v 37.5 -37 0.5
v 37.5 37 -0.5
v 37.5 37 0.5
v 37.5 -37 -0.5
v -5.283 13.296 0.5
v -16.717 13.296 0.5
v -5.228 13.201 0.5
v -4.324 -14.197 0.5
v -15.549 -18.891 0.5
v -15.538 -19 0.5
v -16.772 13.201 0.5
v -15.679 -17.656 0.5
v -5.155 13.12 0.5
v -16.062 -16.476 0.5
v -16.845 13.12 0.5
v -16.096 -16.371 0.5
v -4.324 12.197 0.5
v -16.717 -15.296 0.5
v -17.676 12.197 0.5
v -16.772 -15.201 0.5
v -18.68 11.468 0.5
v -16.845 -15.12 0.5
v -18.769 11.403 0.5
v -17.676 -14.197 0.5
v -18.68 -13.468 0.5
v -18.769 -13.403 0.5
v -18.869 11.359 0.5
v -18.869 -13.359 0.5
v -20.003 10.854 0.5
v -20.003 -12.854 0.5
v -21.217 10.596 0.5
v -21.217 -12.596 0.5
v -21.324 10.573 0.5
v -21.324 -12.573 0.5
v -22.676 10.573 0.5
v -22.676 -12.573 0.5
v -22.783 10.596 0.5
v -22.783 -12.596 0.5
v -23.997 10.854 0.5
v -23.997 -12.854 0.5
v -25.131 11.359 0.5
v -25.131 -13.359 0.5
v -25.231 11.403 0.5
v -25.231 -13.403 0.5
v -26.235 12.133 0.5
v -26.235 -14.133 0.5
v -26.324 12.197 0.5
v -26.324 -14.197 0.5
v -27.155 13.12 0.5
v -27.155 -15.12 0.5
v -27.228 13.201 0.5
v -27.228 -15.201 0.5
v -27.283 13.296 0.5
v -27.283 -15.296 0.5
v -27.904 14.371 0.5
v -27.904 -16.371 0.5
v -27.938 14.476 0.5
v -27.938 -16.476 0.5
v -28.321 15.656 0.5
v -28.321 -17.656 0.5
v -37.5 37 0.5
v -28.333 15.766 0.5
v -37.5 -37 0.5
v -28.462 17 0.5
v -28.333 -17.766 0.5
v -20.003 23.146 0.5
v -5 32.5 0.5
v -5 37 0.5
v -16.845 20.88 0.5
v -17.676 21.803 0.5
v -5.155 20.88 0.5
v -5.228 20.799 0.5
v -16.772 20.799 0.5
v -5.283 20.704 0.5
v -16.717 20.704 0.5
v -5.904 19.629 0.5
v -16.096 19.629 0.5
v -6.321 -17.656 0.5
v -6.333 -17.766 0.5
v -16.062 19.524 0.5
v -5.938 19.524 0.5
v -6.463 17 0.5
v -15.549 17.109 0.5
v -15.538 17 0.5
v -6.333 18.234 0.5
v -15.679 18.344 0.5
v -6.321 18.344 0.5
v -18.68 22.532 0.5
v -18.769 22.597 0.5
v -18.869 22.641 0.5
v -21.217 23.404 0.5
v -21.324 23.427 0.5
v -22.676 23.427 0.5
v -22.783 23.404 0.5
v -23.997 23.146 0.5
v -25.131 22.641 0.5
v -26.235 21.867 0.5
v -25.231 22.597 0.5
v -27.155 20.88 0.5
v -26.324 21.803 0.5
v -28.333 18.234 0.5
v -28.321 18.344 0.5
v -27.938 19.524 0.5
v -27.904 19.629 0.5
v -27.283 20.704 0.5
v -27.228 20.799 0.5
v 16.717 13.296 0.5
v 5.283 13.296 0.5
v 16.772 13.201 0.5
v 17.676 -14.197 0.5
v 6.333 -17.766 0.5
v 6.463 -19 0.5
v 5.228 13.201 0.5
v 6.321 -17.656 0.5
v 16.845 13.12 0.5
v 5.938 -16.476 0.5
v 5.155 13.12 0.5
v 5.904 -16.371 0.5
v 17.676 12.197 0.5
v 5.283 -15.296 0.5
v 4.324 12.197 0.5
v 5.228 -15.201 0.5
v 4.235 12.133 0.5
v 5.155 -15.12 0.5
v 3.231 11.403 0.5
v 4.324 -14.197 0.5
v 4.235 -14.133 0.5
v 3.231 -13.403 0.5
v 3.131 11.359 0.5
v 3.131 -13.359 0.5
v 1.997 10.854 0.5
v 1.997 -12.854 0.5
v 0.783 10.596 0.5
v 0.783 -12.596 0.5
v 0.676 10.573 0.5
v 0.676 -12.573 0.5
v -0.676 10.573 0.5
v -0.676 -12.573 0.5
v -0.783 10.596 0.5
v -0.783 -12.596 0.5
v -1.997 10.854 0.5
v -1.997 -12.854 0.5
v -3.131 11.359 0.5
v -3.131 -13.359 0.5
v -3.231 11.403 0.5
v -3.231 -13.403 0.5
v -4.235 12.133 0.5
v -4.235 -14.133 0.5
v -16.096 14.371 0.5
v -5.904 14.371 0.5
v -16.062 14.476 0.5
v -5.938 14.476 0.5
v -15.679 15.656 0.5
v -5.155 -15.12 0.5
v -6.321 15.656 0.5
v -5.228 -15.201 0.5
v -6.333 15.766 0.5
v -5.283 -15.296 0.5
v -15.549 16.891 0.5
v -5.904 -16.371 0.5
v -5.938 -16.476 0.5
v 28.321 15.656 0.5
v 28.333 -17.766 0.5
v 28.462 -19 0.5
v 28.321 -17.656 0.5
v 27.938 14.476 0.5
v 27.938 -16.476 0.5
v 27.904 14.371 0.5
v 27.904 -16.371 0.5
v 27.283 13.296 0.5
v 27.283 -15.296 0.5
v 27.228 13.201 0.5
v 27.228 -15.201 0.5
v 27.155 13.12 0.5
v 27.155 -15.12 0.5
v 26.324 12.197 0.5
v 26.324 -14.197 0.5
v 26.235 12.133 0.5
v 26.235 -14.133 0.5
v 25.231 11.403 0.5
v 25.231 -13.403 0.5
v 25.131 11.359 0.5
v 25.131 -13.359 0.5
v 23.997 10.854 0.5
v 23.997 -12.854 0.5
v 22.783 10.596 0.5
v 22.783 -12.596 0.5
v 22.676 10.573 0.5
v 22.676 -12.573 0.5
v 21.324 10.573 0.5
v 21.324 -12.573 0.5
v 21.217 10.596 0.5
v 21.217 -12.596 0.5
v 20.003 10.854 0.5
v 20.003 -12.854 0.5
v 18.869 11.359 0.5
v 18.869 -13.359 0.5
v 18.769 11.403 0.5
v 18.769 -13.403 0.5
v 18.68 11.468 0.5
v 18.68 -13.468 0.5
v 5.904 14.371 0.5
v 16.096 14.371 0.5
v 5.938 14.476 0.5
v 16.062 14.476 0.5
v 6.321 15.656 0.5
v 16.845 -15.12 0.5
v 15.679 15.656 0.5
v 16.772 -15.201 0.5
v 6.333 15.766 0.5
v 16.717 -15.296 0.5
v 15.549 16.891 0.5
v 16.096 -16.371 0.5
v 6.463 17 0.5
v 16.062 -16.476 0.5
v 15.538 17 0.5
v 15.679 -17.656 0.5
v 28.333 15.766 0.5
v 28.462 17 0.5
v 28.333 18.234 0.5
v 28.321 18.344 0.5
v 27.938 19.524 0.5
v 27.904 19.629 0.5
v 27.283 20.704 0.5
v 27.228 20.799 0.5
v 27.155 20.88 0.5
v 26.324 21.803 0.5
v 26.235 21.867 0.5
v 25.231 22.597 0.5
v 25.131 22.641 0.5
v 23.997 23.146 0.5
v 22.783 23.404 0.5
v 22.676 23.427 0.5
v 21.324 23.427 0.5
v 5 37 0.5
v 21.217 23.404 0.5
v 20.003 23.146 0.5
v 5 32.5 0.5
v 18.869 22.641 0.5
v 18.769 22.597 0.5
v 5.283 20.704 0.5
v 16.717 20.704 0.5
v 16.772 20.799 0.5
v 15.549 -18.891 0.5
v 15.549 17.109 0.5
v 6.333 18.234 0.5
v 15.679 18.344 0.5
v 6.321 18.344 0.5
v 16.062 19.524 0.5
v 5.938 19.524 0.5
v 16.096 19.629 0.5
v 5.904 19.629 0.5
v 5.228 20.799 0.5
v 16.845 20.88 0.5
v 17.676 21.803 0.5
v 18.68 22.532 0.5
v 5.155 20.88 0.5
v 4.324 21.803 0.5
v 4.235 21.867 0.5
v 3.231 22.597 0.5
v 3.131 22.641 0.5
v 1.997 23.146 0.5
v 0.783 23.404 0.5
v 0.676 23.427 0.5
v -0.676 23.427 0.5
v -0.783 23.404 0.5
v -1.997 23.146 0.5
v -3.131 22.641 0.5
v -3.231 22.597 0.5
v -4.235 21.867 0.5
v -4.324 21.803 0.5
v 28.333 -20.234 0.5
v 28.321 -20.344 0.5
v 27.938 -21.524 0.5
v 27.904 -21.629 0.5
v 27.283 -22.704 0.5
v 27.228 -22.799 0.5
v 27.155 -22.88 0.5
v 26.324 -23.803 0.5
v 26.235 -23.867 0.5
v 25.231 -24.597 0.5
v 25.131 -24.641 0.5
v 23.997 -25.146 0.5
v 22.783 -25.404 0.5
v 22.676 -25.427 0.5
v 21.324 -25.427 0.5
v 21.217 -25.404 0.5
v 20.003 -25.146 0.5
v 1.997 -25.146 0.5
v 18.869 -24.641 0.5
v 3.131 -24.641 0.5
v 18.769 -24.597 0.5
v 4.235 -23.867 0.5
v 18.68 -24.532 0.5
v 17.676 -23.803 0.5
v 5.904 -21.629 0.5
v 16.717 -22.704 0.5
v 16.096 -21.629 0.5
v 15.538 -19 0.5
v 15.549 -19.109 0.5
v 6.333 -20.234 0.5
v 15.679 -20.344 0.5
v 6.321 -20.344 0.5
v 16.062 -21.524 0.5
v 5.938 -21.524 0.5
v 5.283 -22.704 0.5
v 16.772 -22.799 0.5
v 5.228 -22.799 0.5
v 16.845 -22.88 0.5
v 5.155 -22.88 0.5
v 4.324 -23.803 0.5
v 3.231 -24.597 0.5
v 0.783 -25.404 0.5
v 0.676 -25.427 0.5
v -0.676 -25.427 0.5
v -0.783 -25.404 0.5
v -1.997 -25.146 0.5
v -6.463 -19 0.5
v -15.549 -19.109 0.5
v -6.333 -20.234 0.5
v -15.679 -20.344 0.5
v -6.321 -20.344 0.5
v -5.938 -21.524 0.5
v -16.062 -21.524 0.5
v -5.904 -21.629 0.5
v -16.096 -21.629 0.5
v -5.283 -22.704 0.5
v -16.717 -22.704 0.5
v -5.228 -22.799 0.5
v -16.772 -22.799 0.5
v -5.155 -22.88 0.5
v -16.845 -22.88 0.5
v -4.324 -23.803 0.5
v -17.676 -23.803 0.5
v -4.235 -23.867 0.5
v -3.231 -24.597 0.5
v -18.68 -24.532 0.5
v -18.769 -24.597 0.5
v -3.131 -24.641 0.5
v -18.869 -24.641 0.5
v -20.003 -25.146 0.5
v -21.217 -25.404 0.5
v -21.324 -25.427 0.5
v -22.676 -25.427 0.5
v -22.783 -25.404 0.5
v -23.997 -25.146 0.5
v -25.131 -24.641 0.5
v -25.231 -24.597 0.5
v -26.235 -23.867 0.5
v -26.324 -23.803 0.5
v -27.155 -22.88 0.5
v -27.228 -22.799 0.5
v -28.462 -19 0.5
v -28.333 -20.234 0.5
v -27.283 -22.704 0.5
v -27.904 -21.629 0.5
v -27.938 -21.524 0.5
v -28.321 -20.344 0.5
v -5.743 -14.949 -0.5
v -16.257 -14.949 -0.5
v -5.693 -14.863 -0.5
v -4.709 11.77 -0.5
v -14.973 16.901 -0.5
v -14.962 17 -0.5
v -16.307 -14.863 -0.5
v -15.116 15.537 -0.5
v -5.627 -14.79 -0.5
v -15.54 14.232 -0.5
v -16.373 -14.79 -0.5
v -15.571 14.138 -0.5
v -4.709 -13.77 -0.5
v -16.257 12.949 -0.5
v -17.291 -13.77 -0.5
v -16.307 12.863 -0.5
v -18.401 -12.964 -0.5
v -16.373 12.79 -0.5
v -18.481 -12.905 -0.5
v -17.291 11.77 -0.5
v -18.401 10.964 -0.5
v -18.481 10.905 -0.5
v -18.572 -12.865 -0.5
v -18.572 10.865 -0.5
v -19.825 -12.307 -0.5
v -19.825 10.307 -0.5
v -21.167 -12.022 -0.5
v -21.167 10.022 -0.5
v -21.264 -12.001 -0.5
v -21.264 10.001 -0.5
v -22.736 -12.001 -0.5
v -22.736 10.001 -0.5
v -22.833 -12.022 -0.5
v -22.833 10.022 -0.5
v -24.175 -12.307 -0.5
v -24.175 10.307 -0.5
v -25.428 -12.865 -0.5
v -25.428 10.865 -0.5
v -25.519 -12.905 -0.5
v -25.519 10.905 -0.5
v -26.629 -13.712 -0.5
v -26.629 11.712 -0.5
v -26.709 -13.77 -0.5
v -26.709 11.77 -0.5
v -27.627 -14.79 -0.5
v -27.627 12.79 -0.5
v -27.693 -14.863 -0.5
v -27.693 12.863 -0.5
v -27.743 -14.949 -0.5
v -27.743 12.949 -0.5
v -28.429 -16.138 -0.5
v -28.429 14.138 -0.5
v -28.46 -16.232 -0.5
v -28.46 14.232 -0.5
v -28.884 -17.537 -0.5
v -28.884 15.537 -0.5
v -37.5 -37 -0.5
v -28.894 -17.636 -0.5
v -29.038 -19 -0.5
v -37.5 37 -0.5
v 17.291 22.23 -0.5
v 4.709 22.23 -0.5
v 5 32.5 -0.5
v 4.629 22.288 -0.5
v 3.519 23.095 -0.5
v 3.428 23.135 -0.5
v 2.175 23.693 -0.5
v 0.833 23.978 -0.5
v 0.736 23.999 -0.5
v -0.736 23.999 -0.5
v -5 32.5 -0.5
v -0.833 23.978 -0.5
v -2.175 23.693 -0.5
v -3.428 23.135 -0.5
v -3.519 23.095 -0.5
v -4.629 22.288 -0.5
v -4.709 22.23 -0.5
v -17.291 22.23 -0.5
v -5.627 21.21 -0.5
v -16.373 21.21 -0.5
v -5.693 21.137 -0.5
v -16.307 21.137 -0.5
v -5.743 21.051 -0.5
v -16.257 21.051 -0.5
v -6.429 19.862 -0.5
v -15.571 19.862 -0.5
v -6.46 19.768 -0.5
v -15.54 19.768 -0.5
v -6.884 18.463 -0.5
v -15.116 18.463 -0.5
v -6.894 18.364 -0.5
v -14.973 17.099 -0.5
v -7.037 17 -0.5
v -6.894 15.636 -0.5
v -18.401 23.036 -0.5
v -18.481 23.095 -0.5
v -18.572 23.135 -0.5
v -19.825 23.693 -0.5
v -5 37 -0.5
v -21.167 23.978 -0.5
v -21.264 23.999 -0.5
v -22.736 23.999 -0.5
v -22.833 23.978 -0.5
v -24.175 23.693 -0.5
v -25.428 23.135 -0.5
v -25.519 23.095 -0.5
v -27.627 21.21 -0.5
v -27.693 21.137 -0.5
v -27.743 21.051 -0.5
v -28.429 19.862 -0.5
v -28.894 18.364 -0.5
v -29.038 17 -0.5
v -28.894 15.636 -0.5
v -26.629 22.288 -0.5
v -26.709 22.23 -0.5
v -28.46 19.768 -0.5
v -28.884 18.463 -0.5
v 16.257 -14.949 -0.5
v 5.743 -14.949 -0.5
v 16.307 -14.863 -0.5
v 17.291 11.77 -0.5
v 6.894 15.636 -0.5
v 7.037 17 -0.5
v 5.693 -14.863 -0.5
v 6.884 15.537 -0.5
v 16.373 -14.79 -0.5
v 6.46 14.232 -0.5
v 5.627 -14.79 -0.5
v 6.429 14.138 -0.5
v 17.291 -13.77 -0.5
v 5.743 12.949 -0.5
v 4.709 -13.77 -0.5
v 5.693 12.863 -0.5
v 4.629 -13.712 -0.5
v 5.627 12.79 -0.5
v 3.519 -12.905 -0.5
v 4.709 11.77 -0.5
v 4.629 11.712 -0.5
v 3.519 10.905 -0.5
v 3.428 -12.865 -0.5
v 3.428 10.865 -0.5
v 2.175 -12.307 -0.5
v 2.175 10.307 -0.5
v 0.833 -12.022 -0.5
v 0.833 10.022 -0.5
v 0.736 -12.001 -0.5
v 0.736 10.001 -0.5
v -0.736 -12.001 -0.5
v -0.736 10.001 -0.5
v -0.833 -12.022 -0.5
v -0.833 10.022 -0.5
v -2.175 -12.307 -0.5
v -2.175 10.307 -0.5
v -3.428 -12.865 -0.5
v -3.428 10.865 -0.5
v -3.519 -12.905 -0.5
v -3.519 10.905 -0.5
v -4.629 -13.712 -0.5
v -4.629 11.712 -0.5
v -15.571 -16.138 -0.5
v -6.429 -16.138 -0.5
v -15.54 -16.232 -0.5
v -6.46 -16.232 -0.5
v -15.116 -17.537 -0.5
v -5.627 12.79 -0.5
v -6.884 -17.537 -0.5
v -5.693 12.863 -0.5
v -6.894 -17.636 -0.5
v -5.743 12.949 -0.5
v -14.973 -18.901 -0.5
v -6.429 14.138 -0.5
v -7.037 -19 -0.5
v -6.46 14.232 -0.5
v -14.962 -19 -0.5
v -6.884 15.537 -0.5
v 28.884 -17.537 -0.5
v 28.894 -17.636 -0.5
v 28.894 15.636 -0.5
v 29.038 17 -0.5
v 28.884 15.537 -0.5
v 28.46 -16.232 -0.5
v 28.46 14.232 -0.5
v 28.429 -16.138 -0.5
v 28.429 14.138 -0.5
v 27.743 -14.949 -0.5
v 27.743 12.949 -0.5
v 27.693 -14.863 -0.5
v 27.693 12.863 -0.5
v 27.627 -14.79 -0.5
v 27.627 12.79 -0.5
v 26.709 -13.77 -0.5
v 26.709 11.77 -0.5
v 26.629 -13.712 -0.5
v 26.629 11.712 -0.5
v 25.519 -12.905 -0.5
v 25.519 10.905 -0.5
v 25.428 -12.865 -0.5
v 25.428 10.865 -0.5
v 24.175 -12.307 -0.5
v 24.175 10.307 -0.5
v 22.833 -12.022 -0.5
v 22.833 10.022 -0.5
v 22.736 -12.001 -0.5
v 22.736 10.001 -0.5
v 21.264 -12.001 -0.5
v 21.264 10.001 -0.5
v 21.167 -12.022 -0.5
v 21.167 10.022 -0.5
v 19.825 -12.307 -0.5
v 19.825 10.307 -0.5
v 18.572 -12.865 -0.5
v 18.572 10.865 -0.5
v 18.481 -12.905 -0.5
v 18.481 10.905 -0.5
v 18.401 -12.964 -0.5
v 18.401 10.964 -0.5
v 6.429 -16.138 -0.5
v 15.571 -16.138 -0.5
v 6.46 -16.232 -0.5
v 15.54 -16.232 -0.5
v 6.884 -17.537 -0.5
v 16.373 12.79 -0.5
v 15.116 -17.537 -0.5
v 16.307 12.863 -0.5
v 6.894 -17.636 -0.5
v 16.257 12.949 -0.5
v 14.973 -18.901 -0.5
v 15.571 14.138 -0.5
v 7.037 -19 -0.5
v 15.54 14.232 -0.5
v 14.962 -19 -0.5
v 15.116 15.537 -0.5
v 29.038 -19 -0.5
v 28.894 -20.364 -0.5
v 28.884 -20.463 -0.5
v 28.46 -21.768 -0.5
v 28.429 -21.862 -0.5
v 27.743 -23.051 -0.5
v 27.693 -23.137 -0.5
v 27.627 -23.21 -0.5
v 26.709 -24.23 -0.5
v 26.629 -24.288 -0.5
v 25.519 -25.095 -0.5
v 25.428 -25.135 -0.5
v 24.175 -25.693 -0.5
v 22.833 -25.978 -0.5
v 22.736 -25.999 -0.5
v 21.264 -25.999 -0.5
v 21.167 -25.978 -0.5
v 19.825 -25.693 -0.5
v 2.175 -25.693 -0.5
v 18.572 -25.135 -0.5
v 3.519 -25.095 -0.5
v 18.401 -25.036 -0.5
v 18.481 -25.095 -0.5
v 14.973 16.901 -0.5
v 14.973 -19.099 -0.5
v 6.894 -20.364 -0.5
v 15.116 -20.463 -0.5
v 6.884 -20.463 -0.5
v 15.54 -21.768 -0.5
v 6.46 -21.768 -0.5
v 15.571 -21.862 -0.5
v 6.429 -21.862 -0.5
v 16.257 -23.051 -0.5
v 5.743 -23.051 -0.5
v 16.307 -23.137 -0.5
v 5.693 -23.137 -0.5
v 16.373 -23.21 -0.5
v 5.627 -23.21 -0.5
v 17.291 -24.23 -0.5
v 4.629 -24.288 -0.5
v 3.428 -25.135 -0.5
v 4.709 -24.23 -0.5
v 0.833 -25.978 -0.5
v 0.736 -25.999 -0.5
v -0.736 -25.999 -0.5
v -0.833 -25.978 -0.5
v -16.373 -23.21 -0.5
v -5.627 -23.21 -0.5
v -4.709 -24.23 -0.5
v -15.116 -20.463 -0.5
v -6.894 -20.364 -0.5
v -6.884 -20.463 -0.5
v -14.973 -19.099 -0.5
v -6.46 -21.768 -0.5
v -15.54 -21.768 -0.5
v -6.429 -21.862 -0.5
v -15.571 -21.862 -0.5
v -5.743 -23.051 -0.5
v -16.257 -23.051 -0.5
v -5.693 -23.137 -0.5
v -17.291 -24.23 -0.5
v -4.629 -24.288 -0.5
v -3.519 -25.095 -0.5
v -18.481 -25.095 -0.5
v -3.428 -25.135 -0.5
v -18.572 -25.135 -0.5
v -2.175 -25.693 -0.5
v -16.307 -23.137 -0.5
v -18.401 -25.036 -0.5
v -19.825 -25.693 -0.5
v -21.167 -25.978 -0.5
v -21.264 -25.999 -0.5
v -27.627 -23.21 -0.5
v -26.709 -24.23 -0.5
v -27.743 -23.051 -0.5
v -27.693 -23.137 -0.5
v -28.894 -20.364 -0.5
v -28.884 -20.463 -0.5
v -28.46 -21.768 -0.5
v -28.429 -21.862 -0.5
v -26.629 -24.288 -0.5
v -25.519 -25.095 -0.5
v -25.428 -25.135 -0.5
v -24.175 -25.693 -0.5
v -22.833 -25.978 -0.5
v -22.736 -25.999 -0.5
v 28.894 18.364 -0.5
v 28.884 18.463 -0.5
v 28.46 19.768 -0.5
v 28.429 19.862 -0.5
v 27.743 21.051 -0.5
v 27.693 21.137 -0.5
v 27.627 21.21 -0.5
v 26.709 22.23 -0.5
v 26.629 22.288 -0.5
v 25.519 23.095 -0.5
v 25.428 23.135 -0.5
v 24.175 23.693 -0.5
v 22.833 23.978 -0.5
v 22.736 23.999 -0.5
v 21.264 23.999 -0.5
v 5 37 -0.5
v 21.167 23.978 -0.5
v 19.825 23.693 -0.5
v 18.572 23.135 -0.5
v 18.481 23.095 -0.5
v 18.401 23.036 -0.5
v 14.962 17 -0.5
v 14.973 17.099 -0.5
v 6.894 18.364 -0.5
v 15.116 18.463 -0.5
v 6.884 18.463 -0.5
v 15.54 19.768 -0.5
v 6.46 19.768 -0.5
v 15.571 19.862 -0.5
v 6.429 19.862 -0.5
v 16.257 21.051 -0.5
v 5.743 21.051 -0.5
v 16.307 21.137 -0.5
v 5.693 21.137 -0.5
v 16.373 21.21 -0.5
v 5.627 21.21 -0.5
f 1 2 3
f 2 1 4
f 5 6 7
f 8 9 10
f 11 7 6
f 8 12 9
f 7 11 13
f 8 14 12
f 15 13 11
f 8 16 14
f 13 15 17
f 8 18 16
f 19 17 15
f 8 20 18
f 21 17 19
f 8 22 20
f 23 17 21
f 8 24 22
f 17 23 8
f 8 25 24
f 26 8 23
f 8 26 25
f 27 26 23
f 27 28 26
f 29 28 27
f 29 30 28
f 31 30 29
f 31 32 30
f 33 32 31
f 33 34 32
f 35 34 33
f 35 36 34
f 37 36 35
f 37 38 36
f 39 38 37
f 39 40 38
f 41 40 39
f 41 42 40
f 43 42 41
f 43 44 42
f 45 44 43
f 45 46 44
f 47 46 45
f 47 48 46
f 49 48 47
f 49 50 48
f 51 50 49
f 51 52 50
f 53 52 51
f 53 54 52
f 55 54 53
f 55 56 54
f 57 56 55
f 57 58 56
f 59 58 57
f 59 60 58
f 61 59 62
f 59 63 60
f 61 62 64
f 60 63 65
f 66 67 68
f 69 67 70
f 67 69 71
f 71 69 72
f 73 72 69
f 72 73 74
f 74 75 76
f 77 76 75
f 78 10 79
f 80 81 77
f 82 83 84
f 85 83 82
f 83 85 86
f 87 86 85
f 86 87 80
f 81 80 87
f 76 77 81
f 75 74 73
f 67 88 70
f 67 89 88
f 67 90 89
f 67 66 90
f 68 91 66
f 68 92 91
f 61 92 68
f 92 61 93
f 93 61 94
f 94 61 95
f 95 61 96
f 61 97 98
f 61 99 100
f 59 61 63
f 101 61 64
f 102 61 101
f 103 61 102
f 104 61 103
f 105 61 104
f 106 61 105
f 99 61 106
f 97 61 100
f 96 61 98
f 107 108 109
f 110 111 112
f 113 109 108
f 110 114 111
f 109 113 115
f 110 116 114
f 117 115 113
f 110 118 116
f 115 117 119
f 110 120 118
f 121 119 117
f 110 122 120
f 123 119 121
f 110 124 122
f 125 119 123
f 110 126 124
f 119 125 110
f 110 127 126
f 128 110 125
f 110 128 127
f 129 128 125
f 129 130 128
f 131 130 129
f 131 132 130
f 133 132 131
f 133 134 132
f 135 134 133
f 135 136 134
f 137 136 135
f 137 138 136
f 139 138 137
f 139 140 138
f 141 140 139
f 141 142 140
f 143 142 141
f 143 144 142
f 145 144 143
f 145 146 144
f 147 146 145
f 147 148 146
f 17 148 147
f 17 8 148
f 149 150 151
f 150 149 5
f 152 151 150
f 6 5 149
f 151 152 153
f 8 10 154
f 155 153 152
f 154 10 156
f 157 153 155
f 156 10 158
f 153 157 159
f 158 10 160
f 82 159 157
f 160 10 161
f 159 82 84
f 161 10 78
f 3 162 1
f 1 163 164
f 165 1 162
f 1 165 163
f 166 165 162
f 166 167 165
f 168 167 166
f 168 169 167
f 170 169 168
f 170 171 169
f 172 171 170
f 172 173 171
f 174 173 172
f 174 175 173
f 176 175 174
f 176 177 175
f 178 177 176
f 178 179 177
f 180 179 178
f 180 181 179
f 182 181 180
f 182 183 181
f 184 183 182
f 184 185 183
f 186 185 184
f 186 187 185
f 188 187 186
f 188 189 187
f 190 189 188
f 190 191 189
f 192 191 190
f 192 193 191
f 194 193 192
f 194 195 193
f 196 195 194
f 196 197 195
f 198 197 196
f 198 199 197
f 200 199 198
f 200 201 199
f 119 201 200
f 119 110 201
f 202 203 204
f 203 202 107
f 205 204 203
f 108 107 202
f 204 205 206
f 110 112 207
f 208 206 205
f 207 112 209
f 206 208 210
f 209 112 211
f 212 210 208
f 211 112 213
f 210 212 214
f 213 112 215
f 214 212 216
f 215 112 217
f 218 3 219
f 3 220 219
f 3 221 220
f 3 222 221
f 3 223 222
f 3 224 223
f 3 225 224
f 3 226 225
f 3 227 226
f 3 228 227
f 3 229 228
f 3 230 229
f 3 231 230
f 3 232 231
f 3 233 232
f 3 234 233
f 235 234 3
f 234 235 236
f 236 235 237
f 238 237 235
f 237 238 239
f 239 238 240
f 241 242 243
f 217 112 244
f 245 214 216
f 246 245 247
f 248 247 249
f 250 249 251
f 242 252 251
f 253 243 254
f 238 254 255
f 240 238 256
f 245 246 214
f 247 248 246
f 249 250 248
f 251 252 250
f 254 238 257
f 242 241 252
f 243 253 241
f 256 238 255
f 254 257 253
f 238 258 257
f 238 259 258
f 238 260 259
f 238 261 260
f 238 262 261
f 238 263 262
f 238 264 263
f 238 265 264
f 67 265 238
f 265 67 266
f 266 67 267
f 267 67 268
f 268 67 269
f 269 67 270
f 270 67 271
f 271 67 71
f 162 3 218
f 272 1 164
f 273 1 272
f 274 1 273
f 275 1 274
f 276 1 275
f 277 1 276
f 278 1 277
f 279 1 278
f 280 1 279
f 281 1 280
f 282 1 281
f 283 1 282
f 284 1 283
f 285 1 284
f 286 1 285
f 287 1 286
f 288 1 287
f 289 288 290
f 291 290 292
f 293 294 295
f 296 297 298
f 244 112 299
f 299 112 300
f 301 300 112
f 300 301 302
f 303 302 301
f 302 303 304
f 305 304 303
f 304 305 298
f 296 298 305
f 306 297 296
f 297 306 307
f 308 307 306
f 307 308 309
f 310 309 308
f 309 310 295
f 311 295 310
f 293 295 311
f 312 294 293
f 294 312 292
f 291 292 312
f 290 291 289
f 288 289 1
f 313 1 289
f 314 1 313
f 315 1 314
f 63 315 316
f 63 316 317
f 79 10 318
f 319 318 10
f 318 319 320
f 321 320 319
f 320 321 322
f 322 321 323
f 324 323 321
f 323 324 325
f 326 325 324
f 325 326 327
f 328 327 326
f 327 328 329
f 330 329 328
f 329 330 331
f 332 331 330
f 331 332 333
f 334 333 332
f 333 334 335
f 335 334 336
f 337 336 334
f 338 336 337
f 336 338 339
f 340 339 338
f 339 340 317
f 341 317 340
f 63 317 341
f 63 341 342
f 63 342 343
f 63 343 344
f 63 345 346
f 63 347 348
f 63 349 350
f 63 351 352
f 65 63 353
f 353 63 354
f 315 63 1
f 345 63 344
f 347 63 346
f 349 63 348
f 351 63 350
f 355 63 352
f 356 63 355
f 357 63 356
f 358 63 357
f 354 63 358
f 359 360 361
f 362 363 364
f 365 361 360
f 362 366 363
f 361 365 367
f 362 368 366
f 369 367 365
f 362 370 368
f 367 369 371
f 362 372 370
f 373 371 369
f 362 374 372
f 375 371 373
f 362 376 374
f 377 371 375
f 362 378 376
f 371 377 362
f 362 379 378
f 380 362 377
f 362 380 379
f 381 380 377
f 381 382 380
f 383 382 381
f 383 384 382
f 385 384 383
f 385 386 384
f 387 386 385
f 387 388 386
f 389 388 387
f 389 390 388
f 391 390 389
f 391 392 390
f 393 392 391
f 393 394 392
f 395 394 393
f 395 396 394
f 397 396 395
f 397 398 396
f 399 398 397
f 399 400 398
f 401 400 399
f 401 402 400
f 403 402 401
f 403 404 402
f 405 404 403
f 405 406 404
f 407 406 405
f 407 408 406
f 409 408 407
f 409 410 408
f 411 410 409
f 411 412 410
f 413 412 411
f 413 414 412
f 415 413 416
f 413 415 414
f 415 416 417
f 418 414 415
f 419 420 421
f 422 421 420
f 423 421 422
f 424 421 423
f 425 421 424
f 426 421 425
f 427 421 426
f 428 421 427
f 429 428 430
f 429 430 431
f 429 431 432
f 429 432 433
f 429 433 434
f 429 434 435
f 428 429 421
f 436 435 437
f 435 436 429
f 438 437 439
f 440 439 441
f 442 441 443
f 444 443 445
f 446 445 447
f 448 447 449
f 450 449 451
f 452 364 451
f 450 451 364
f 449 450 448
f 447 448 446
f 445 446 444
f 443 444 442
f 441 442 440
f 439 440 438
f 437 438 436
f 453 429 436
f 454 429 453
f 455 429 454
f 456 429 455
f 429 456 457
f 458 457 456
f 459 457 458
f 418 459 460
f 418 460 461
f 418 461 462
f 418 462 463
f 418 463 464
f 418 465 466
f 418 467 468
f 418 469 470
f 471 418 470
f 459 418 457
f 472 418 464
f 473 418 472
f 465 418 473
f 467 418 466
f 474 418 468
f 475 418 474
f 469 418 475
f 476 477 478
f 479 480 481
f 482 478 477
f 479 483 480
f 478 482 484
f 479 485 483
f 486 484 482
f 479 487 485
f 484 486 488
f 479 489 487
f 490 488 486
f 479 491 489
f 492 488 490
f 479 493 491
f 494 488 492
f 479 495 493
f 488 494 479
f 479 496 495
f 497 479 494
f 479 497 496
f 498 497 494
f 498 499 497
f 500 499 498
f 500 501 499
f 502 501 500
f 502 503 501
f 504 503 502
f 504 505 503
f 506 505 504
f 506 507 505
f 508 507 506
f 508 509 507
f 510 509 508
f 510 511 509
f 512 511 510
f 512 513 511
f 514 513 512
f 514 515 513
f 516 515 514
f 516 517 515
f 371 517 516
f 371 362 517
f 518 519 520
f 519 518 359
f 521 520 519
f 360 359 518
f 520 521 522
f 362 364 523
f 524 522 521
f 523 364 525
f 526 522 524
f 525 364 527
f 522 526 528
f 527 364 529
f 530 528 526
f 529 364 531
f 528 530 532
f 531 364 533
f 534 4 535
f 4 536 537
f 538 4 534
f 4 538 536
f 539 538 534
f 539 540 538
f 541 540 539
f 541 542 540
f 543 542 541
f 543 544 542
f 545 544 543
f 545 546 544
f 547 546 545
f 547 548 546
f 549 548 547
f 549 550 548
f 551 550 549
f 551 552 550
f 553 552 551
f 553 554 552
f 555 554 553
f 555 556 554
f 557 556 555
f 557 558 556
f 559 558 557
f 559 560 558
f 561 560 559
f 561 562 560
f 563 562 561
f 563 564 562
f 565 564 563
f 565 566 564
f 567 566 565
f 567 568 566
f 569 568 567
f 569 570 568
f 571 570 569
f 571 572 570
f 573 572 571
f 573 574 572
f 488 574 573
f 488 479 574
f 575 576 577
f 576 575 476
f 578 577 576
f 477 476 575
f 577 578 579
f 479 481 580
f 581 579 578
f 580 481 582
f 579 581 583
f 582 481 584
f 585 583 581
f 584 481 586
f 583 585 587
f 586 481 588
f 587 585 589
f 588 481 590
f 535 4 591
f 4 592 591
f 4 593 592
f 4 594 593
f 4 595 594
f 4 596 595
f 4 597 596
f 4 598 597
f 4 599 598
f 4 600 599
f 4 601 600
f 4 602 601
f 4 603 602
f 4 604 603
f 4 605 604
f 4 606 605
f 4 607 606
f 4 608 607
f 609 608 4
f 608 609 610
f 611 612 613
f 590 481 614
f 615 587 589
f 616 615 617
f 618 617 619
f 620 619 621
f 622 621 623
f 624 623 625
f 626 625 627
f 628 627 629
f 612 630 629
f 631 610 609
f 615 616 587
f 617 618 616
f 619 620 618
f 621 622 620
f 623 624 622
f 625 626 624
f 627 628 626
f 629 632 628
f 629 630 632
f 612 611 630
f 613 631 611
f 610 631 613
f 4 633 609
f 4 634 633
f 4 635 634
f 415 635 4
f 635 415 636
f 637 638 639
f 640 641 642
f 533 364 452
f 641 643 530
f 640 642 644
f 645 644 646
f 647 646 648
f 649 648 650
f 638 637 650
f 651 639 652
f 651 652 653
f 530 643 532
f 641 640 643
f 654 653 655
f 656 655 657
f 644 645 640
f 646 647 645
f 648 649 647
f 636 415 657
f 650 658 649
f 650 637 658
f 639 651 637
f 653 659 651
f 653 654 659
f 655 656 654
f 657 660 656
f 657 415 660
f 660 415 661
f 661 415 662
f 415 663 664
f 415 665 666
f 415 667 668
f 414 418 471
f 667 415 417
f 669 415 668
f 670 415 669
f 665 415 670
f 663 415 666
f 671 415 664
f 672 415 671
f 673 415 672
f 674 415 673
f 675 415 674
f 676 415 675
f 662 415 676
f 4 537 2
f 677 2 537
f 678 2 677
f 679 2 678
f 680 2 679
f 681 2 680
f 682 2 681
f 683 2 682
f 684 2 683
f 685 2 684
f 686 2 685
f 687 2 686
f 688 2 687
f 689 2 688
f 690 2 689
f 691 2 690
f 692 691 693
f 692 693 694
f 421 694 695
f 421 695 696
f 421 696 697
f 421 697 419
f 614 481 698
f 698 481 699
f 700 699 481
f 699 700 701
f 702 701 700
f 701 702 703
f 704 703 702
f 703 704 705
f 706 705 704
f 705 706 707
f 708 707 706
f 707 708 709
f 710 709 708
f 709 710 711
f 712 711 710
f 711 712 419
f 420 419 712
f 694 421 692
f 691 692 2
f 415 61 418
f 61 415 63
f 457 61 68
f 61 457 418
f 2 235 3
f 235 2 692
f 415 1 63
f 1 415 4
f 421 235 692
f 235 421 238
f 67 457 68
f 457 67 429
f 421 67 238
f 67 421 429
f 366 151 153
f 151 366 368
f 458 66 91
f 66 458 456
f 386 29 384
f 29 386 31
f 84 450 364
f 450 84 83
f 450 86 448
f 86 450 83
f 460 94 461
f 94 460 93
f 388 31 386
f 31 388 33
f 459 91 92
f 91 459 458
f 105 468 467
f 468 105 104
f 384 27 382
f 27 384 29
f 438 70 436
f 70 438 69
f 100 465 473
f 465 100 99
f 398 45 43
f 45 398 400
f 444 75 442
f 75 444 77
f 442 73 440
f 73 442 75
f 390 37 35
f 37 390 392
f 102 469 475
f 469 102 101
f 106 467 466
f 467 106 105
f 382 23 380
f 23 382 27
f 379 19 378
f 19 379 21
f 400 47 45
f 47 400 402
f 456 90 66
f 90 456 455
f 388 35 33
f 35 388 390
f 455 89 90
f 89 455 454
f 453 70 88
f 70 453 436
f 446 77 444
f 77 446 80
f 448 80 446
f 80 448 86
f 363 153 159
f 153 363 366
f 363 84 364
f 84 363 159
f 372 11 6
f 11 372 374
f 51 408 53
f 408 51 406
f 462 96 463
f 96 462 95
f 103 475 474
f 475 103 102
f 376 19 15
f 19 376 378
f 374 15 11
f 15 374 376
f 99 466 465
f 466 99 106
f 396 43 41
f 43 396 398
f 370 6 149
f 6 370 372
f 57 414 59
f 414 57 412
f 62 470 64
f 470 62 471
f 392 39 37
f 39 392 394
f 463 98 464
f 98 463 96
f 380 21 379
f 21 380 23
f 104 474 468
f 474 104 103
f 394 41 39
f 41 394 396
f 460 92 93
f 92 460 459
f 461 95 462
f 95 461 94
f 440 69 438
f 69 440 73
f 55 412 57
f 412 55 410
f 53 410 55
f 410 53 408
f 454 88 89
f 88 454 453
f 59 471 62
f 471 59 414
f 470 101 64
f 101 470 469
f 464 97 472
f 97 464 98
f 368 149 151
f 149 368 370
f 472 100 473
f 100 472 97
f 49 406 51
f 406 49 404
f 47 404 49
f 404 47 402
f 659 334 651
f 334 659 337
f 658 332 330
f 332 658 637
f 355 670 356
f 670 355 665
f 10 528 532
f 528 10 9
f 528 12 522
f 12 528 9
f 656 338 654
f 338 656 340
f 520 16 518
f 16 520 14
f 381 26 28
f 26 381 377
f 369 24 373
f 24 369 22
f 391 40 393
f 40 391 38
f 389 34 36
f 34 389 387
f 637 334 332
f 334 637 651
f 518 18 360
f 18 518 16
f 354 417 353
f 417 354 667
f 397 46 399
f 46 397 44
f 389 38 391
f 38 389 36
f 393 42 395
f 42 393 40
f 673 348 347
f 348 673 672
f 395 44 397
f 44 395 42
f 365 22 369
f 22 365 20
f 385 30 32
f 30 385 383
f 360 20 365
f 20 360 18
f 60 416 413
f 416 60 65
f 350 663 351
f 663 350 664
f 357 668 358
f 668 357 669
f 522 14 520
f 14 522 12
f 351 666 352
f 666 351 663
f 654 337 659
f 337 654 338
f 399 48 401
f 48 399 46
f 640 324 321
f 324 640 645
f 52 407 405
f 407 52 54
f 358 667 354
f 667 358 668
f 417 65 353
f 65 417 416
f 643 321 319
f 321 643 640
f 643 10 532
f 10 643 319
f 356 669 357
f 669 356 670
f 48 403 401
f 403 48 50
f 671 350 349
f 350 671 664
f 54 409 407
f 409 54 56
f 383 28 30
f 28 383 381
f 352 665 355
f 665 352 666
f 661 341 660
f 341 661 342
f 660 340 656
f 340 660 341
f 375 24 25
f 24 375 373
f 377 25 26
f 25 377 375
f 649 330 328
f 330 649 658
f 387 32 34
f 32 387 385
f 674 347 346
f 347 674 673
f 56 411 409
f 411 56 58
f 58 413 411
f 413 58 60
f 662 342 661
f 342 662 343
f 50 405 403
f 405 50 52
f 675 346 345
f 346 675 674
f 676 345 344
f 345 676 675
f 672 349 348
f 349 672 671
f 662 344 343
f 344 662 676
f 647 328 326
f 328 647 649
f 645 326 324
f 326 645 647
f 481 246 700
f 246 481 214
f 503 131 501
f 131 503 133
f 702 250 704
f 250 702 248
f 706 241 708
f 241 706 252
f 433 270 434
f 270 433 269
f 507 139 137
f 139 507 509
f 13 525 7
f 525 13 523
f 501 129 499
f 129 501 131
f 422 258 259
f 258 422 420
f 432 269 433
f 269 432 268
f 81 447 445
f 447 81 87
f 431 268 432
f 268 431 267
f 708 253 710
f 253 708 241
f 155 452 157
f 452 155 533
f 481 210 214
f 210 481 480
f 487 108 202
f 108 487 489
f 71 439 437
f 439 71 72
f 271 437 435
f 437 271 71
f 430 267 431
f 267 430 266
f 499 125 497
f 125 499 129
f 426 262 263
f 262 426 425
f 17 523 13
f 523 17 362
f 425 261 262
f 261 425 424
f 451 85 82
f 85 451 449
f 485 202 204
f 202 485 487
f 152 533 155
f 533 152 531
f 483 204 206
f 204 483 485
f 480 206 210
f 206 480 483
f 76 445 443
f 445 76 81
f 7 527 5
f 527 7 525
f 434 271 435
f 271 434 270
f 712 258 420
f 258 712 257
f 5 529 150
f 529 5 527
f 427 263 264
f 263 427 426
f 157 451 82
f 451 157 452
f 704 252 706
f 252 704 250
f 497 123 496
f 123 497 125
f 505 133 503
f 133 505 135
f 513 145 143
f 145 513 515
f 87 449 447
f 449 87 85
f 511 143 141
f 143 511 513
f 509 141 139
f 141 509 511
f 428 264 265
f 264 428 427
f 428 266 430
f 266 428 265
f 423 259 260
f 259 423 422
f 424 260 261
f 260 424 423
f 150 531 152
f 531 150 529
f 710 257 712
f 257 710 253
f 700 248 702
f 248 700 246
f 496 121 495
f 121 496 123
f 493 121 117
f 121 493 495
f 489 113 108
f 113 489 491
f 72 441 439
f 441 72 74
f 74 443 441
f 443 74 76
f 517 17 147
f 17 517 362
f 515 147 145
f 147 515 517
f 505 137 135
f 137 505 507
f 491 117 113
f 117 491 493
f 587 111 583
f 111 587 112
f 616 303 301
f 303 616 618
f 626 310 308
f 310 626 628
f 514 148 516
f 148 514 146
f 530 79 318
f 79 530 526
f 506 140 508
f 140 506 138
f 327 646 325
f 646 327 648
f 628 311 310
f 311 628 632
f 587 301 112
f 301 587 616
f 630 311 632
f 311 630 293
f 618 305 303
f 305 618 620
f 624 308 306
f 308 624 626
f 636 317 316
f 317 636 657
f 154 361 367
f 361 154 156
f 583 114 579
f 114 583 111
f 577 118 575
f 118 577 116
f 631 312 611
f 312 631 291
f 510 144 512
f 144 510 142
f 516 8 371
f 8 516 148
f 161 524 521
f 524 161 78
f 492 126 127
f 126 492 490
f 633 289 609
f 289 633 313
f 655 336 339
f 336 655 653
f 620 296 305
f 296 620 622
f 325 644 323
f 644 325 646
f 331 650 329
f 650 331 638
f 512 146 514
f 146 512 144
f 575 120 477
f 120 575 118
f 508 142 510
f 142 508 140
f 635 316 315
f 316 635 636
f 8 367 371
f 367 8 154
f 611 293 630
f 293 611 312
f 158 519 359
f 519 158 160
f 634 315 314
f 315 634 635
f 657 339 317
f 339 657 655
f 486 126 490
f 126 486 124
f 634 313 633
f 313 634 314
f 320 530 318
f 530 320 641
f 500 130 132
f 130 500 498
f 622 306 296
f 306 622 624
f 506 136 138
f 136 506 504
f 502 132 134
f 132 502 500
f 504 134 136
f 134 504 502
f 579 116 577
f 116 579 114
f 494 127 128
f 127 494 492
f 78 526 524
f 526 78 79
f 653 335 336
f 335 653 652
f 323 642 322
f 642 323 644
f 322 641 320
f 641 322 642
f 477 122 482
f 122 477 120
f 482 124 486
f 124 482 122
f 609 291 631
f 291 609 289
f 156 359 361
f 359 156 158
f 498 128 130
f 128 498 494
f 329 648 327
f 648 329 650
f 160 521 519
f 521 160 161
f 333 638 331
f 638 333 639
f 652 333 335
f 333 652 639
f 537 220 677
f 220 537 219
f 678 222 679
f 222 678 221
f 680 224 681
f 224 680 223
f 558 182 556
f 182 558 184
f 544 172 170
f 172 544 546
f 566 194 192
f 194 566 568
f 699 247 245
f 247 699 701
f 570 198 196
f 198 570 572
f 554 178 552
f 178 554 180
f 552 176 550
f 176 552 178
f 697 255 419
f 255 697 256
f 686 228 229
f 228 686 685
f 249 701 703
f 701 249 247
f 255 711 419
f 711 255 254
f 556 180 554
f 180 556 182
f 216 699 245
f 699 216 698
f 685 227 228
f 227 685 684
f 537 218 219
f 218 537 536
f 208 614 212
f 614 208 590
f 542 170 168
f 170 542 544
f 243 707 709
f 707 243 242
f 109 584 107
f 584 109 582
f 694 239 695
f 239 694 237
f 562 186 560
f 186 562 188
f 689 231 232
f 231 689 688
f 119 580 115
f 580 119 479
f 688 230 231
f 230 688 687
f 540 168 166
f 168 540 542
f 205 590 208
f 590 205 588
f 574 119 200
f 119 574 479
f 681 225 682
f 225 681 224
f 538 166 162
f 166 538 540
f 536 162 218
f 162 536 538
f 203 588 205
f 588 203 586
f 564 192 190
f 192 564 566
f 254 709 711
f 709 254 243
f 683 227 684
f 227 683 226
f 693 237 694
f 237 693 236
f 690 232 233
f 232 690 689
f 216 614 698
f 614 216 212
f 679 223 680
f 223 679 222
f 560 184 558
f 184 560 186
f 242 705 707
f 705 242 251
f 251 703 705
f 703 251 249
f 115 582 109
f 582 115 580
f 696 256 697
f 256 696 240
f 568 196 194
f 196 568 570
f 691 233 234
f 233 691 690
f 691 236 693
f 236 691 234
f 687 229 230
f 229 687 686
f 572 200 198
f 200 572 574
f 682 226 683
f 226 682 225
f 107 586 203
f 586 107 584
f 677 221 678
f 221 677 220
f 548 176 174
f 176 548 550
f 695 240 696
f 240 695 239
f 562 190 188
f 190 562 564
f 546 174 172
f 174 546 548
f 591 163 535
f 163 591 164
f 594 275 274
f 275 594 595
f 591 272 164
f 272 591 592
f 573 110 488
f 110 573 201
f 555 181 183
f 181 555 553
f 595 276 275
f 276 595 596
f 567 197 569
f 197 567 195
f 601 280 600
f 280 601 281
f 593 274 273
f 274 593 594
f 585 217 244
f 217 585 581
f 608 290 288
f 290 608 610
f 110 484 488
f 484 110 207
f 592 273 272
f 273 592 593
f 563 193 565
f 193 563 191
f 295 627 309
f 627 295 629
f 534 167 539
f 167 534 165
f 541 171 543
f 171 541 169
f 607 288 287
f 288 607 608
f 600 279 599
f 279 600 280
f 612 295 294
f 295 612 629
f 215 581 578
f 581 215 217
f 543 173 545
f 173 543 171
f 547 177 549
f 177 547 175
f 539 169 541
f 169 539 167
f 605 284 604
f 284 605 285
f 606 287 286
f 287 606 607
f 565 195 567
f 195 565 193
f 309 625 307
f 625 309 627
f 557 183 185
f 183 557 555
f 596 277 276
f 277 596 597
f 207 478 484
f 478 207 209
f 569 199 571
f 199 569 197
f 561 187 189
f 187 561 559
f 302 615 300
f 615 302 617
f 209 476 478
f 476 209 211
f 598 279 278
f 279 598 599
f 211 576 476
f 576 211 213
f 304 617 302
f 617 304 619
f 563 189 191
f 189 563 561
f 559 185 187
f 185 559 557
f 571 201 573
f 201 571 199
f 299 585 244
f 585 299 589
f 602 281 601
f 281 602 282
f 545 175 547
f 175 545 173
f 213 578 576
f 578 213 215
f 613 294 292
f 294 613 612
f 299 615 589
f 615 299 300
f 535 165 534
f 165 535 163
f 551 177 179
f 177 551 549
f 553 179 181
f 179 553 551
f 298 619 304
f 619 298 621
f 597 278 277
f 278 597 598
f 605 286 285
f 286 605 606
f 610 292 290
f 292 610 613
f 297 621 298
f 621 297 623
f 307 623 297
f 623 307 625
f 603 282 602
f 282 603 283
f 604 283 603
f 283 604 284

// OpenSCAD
//AmaFi Bottom Cover

//Set variables (mm):
//Cover
bcx = 75; //cover width
bcy = 74; //cover height
bcz = 1; //cover thickness
// Power witing cutouts
lcx = 10; //
lcy = 5; //
lcz = 5; //
lct = [0,35,0]; //cutout trans
//Wiring cutouts
h = 20; //cutout height
d = 12.5; //cutout diameter
cy1t = 17; //row 1 translation
cy2t = -19; //row 2 translation
czt = 0; //z translation
cx1t = -22; //column 1 trans
cx2t = 0; //column 2 translation
cx3t = 22; //column 3 translation

//Create cover:
difference() { //remove cutouts
cube([bcx,bcy,bcz], center = true);
//polygon cutout
translate(lct)
cube([lcx,lcy,lcz], center = true);
//top-left cutout
translate([cx1t,cy1t,czt])
cylinder(h, d, center = true);
//bottom-left cutout
translate([cx1t,cy2t,czt])
cylinder(h, d, center = true);
//top-middle cutout
translate([cx2t,cy1t,czt])
cylinder(h, d, center = true);
//bottom-middle cutout
translate([cx2t,cy2t,czt])
cylinder(h, d, center = true);
//top-right cutout
translate([cx3t,cy1t,czt])
cylinder(h, d, center = true);
//bottom-right cutout
translate([cx3t,cy2t,czt])
cylinder(h, d, center = true);    
}
